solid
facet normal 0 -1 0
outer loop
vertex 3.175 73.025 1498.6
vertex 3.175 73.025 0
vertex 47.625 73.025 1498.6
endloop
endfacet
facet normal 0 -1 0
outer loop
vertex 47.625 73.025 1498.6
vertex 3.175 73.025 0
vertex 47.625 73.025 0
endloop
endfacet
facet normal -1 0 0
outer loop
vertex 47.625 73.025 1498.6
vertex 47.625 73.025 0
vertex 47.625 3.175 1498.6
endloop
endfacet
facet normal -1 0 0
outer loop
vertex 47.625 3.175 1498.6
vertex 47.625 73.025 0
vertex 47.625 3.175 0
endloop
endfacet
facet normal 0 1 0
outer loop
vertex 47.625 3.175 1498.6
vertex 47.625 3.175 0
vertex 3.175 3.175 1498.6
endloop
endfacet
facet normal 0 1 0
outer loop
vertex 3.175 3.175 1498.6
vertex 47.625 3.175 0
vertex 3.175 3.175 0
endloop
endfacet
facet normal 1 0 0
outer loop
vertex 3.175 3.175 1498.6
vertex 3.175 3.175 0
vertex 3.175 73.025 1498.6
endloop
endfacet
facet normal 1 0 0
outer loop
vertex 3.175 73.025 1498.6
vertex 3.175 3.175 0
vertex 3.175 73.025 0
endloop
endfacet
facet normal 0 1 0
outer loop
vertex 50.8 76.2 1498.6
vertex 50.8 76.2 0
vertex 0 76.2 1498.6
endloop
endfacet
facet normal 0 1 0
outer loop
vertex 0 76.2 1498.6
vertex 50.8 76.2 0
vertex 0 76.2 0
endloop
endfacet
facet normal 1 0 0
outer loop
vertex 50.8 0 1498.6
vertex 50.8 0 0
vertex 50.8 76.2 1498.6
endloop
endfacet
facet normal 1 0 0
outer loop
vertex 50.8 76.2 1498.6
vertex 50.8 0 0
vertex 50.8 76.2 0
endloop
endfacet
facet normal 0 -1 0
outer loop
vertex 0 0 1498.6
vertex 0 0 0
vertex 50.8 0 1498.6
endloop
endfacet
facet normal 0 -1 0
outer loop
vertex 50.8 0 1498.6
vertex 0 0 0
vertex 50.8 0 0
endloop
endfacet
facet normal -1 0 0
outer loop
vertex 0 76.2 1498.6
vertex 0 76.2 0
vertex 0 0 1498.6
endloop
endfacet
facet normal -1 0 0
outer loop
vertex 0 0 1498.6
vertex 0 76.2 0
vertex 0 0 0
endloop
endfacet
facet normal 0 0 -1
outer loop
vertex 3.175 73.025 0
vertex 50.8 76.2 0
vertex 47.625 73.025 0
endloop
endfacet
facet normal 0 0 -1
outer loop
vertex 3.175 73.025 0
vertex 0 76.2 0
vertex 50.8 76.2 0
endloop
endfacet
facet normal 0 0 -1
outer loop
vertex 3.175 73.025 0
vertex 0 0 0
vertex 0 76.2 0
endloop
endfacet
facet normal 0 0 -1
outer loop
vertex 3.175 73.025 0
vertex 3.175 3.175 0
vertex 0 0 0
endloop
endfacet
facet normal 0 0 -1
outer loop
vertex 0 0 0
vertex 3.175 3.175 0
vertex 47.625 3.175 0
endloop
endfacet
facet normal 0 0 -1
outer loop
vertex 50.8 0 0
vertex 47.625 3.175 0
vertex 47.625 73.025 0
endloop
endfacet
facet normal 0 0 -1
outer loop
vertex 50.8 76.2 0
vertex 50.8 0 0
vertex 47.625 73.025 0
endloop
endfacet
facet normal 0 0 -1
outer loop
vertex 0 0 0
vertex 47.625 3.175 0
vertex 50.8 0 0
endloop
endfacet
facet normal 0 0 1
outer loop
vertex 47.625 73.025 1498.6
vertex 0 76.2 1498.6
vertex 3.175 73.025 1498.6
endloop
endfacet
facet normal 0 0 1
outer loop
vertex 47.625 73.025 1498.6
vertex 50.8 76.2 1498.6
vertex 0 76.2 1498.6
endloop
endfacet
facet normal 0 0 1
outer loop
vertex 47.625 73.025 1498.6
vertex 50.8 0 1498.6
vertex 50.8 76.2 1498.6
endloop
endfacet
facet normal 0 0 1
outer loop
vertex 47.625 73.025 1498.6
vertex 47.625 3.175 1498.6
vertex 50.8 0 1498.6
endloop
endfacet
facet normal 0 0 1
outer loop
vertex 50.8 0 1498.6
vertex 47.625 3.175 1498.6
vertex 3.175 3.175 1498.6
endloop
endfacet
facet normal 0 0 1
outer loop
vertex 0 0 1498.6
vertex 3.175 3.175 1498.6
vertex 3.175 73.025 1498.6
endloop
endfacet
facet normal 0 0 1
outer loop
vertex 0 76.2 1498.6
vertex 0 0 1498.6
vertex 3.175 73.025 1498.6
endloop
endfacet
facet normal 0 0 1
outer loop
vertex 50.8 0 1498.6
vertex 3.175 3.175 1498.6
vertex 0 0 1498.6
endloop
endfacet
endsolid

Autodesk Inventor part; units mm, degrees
ref_plane "YZ Plane" through (0, 0, 0) normal (1, 0, 0) x (0, 1, 0)
ref_plane "XZ Plane" through (0, 0, 0) normal (0, 1, 0) x (-1, 0, 0)
ref_plane "XY Plane" through (0, 0, 0) normal (0, 0, 1) x (1, 0, 0)
sketch "Sketch1" plane through (0, 0, 0) normal (0, 0, 1) x (1, 0, 0)
  line L0 (0, 0) -> (50.8, 0)
  line L1 (50.8, 0) -> (50.8, 76.2)
  line L2 (50.8, 76.2) -> (0, 76.2)
  line L3 (0, 76.2) -> (0, 0)
  line L4 (3.175, 73.025) -> (47.625, 73.025)
  line L5 (47.625, 73.025) -> (47.625, 3.175)
  line L6 (47.625, 3.175) -> (3.175, 3.175)
  line L7 (3.175, 3.175) -> (3.175, 73.025)
  dimension "d13" = 3.175
  dimension "d14" = 50.8
  dimension "d15" = 76.2
  dimension "d16" = 3.175
  dimension "d17" = 3.175
  dimension "d18" = 3.175
extrude "Extrusion1" add sketch "Sketch1" along normal blind 1498.6
properties part number "GE-12019-05" material "Aluminum-6061"
